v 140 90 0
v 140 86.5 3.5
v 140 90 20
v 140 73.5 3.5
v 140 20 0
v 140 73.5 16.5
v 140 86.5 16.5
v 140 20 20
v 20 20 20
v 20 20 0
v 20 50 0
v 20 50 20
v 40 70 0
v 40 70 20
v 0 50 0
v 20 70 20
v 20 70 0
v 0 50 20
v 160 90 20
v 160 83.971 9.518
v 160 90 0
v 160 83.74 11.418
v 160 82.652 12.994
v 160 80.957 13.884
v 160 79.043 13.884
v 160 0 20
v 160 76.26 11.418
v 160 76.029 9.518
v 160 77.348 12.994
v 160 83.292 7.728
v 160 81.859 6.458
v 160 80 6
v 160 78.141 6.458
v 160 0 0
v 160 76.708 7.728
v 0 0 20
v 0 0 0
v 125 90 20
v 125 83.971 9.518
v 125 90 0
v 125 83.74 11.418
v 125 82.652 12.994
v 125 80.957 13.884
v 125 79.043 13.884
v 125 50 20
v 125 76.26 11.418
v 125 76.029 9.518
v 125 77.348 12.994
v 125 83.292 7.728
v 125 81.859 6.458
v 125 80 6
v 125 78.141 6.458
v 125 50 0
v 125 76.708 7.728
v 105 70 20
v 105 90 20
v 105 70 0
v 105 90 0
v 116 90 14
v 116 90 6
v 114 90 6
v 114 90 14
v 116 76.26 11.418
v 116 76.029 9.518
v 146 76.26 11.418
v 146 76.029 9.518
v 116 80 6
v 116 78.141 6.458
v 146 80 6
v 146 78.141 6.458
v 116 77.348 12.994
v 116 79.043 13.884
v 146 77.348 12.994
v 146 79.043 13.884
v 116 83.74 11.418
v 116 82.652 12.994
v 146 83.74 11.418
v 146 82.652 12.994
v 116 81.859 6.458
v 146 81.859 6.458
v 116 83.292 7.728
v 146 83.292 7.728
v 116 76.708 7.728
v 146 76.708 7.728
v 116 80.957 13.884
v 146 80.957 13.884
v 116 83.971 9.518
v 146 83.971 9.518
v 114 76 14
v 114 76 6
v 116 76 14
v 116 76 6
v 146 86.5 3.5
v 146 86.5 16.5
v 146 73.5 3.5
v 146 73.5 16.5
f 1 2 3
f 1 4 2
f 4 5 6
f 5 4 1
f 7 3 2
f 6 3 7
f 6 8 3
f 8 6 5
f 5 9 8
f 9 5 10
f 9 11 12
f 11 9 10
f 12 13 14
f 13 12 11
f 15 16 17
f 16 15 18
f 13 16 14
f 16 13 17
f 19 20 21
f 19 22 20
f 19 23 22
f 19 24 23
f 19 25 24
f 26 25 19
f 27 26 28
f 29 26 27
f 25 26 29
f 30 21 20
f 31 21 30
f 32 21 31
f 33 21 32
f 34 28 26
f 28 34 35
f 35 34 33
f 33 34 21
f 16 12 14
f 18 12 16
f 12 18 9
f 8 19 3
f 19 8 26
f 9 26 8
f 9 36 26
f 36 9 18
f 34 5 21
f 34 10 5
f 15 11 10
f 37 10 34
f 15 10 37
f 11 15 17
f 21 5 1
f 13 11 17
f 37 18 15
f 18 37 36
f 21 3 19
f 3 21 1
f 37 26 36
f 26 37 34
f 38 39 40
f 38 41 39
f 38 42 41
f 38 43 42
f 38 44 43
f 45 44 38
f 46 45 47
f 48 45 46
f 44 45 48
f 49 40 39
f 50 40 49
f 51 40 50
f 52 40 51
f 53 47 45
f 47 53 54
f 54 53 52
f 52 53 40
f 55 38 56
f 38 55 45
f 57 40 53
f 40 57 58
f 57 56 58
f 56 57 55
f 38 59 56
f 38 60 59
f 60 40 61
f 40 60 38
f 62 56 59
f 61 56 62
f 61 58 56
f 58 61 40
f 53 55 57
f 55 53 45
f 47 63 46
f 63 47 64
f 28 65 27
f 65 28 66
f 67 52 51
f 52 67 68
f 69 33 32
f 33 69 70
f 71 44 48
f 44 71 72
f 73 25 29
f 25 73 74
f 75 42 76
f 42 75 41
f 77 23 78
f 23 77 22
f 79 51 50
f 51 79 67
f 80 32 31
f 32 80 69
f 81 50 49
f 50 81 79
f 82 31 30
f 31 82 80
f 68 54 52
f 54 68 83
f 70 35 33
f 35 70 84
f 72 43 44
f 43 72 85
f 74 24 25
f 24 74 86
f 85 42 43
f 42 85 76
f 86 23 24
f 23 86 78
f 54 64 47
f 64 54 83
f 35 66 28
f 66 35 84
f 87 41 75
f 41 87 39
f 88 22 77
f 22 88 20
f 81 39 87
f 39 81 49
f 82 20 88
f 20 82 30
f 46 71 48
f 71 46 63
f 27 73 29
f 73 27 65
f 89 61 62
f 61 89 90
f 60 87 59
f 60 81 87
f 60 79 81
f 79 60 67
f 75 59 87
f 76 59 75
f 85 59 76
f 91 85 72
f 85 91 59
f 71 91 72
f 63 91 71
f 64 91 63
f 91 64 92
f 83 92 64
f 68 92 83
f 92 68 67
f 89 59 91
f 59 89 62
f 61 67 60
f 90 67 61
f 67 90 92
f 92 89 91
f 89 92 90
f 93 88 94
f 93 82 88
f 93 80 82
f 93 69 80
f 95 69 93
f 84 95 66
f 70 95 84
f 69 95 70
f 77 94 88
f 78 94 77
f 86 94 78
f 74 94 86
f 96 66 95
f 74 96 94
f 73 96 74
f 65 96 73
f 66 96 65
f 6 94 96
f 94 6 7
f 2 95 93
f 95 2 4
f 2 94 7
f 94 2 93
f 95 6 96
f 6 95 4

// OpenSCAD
// width x, depth y, height z
// mm

sy=20; //strength in y
sz=20; //strenght in z (test with 2)
by=20; //block y
e=100; //extra for substraction

module main(sy,sz,by,e){
    difference(){
        cube([120+(2*sy),50+sy+by,sz]);
        union(){
            translate([35+sy,sy,-e/2]){ // SA
                cube([120-35,50+by+e,sz+e]);
            }
            translate([sy,sy,-e/2]){ // SB
                cube([120,30,sz+e]);
            }
            translate([sy,sy+30,-sz+e/2]){ //SC
                rotate([180,0,45]){
                    cube([60,40,sz+e]);
                }
            }
            translate([0,sy+30,-sz-e/2]){ //SD
                rotate([0,0,45]){
                    translate([-e/2,0,0]){
                        cube([60+e,40,sz+e]);
                    }
                }
            }
            translate([-e,50+sy,-e/2]){ // SE
                cube([e+e+sy,e,sz+e]);
            }
        }
    }
}

module block(sy,sz,by,e){
    difference(){
        cube([20,20+by,sz]);
        translate([0,20,0]){
            rotate([180,0,-45]){
                translate([-e/2,0,-e/2]){
                    cube([60+e,40,e]);
                }
            }
        }
    }
}

d=8; //diametre forat pern
f=13; //costat femella pern
ff=7; //fondaria femella pern
difference(){
    union(){
        main(sy,sz,by,e);
        translate([120+sy-35,30+sy,0]){
            block(sy,sz,by,e);
        }
    }
    translate([120+sy-25-1,50+sy+by/2,sz/2]){ // Forat pern
        rotate([0,90,0]){
            cylinder(35+sy+e, d/2, d/2,false);
        }
    }
    translate([120+sy-25-1,50+sy+(by-d)/2,(sz-d)/2]){ // Forat tope pern
        cube([2,e,d]);
    }
    translate([120+sy-1,50+sy+(by-f)/2,(sz-f)/2]){ // Forat femella pern
        cube([ff,f,f]);
    }
}
